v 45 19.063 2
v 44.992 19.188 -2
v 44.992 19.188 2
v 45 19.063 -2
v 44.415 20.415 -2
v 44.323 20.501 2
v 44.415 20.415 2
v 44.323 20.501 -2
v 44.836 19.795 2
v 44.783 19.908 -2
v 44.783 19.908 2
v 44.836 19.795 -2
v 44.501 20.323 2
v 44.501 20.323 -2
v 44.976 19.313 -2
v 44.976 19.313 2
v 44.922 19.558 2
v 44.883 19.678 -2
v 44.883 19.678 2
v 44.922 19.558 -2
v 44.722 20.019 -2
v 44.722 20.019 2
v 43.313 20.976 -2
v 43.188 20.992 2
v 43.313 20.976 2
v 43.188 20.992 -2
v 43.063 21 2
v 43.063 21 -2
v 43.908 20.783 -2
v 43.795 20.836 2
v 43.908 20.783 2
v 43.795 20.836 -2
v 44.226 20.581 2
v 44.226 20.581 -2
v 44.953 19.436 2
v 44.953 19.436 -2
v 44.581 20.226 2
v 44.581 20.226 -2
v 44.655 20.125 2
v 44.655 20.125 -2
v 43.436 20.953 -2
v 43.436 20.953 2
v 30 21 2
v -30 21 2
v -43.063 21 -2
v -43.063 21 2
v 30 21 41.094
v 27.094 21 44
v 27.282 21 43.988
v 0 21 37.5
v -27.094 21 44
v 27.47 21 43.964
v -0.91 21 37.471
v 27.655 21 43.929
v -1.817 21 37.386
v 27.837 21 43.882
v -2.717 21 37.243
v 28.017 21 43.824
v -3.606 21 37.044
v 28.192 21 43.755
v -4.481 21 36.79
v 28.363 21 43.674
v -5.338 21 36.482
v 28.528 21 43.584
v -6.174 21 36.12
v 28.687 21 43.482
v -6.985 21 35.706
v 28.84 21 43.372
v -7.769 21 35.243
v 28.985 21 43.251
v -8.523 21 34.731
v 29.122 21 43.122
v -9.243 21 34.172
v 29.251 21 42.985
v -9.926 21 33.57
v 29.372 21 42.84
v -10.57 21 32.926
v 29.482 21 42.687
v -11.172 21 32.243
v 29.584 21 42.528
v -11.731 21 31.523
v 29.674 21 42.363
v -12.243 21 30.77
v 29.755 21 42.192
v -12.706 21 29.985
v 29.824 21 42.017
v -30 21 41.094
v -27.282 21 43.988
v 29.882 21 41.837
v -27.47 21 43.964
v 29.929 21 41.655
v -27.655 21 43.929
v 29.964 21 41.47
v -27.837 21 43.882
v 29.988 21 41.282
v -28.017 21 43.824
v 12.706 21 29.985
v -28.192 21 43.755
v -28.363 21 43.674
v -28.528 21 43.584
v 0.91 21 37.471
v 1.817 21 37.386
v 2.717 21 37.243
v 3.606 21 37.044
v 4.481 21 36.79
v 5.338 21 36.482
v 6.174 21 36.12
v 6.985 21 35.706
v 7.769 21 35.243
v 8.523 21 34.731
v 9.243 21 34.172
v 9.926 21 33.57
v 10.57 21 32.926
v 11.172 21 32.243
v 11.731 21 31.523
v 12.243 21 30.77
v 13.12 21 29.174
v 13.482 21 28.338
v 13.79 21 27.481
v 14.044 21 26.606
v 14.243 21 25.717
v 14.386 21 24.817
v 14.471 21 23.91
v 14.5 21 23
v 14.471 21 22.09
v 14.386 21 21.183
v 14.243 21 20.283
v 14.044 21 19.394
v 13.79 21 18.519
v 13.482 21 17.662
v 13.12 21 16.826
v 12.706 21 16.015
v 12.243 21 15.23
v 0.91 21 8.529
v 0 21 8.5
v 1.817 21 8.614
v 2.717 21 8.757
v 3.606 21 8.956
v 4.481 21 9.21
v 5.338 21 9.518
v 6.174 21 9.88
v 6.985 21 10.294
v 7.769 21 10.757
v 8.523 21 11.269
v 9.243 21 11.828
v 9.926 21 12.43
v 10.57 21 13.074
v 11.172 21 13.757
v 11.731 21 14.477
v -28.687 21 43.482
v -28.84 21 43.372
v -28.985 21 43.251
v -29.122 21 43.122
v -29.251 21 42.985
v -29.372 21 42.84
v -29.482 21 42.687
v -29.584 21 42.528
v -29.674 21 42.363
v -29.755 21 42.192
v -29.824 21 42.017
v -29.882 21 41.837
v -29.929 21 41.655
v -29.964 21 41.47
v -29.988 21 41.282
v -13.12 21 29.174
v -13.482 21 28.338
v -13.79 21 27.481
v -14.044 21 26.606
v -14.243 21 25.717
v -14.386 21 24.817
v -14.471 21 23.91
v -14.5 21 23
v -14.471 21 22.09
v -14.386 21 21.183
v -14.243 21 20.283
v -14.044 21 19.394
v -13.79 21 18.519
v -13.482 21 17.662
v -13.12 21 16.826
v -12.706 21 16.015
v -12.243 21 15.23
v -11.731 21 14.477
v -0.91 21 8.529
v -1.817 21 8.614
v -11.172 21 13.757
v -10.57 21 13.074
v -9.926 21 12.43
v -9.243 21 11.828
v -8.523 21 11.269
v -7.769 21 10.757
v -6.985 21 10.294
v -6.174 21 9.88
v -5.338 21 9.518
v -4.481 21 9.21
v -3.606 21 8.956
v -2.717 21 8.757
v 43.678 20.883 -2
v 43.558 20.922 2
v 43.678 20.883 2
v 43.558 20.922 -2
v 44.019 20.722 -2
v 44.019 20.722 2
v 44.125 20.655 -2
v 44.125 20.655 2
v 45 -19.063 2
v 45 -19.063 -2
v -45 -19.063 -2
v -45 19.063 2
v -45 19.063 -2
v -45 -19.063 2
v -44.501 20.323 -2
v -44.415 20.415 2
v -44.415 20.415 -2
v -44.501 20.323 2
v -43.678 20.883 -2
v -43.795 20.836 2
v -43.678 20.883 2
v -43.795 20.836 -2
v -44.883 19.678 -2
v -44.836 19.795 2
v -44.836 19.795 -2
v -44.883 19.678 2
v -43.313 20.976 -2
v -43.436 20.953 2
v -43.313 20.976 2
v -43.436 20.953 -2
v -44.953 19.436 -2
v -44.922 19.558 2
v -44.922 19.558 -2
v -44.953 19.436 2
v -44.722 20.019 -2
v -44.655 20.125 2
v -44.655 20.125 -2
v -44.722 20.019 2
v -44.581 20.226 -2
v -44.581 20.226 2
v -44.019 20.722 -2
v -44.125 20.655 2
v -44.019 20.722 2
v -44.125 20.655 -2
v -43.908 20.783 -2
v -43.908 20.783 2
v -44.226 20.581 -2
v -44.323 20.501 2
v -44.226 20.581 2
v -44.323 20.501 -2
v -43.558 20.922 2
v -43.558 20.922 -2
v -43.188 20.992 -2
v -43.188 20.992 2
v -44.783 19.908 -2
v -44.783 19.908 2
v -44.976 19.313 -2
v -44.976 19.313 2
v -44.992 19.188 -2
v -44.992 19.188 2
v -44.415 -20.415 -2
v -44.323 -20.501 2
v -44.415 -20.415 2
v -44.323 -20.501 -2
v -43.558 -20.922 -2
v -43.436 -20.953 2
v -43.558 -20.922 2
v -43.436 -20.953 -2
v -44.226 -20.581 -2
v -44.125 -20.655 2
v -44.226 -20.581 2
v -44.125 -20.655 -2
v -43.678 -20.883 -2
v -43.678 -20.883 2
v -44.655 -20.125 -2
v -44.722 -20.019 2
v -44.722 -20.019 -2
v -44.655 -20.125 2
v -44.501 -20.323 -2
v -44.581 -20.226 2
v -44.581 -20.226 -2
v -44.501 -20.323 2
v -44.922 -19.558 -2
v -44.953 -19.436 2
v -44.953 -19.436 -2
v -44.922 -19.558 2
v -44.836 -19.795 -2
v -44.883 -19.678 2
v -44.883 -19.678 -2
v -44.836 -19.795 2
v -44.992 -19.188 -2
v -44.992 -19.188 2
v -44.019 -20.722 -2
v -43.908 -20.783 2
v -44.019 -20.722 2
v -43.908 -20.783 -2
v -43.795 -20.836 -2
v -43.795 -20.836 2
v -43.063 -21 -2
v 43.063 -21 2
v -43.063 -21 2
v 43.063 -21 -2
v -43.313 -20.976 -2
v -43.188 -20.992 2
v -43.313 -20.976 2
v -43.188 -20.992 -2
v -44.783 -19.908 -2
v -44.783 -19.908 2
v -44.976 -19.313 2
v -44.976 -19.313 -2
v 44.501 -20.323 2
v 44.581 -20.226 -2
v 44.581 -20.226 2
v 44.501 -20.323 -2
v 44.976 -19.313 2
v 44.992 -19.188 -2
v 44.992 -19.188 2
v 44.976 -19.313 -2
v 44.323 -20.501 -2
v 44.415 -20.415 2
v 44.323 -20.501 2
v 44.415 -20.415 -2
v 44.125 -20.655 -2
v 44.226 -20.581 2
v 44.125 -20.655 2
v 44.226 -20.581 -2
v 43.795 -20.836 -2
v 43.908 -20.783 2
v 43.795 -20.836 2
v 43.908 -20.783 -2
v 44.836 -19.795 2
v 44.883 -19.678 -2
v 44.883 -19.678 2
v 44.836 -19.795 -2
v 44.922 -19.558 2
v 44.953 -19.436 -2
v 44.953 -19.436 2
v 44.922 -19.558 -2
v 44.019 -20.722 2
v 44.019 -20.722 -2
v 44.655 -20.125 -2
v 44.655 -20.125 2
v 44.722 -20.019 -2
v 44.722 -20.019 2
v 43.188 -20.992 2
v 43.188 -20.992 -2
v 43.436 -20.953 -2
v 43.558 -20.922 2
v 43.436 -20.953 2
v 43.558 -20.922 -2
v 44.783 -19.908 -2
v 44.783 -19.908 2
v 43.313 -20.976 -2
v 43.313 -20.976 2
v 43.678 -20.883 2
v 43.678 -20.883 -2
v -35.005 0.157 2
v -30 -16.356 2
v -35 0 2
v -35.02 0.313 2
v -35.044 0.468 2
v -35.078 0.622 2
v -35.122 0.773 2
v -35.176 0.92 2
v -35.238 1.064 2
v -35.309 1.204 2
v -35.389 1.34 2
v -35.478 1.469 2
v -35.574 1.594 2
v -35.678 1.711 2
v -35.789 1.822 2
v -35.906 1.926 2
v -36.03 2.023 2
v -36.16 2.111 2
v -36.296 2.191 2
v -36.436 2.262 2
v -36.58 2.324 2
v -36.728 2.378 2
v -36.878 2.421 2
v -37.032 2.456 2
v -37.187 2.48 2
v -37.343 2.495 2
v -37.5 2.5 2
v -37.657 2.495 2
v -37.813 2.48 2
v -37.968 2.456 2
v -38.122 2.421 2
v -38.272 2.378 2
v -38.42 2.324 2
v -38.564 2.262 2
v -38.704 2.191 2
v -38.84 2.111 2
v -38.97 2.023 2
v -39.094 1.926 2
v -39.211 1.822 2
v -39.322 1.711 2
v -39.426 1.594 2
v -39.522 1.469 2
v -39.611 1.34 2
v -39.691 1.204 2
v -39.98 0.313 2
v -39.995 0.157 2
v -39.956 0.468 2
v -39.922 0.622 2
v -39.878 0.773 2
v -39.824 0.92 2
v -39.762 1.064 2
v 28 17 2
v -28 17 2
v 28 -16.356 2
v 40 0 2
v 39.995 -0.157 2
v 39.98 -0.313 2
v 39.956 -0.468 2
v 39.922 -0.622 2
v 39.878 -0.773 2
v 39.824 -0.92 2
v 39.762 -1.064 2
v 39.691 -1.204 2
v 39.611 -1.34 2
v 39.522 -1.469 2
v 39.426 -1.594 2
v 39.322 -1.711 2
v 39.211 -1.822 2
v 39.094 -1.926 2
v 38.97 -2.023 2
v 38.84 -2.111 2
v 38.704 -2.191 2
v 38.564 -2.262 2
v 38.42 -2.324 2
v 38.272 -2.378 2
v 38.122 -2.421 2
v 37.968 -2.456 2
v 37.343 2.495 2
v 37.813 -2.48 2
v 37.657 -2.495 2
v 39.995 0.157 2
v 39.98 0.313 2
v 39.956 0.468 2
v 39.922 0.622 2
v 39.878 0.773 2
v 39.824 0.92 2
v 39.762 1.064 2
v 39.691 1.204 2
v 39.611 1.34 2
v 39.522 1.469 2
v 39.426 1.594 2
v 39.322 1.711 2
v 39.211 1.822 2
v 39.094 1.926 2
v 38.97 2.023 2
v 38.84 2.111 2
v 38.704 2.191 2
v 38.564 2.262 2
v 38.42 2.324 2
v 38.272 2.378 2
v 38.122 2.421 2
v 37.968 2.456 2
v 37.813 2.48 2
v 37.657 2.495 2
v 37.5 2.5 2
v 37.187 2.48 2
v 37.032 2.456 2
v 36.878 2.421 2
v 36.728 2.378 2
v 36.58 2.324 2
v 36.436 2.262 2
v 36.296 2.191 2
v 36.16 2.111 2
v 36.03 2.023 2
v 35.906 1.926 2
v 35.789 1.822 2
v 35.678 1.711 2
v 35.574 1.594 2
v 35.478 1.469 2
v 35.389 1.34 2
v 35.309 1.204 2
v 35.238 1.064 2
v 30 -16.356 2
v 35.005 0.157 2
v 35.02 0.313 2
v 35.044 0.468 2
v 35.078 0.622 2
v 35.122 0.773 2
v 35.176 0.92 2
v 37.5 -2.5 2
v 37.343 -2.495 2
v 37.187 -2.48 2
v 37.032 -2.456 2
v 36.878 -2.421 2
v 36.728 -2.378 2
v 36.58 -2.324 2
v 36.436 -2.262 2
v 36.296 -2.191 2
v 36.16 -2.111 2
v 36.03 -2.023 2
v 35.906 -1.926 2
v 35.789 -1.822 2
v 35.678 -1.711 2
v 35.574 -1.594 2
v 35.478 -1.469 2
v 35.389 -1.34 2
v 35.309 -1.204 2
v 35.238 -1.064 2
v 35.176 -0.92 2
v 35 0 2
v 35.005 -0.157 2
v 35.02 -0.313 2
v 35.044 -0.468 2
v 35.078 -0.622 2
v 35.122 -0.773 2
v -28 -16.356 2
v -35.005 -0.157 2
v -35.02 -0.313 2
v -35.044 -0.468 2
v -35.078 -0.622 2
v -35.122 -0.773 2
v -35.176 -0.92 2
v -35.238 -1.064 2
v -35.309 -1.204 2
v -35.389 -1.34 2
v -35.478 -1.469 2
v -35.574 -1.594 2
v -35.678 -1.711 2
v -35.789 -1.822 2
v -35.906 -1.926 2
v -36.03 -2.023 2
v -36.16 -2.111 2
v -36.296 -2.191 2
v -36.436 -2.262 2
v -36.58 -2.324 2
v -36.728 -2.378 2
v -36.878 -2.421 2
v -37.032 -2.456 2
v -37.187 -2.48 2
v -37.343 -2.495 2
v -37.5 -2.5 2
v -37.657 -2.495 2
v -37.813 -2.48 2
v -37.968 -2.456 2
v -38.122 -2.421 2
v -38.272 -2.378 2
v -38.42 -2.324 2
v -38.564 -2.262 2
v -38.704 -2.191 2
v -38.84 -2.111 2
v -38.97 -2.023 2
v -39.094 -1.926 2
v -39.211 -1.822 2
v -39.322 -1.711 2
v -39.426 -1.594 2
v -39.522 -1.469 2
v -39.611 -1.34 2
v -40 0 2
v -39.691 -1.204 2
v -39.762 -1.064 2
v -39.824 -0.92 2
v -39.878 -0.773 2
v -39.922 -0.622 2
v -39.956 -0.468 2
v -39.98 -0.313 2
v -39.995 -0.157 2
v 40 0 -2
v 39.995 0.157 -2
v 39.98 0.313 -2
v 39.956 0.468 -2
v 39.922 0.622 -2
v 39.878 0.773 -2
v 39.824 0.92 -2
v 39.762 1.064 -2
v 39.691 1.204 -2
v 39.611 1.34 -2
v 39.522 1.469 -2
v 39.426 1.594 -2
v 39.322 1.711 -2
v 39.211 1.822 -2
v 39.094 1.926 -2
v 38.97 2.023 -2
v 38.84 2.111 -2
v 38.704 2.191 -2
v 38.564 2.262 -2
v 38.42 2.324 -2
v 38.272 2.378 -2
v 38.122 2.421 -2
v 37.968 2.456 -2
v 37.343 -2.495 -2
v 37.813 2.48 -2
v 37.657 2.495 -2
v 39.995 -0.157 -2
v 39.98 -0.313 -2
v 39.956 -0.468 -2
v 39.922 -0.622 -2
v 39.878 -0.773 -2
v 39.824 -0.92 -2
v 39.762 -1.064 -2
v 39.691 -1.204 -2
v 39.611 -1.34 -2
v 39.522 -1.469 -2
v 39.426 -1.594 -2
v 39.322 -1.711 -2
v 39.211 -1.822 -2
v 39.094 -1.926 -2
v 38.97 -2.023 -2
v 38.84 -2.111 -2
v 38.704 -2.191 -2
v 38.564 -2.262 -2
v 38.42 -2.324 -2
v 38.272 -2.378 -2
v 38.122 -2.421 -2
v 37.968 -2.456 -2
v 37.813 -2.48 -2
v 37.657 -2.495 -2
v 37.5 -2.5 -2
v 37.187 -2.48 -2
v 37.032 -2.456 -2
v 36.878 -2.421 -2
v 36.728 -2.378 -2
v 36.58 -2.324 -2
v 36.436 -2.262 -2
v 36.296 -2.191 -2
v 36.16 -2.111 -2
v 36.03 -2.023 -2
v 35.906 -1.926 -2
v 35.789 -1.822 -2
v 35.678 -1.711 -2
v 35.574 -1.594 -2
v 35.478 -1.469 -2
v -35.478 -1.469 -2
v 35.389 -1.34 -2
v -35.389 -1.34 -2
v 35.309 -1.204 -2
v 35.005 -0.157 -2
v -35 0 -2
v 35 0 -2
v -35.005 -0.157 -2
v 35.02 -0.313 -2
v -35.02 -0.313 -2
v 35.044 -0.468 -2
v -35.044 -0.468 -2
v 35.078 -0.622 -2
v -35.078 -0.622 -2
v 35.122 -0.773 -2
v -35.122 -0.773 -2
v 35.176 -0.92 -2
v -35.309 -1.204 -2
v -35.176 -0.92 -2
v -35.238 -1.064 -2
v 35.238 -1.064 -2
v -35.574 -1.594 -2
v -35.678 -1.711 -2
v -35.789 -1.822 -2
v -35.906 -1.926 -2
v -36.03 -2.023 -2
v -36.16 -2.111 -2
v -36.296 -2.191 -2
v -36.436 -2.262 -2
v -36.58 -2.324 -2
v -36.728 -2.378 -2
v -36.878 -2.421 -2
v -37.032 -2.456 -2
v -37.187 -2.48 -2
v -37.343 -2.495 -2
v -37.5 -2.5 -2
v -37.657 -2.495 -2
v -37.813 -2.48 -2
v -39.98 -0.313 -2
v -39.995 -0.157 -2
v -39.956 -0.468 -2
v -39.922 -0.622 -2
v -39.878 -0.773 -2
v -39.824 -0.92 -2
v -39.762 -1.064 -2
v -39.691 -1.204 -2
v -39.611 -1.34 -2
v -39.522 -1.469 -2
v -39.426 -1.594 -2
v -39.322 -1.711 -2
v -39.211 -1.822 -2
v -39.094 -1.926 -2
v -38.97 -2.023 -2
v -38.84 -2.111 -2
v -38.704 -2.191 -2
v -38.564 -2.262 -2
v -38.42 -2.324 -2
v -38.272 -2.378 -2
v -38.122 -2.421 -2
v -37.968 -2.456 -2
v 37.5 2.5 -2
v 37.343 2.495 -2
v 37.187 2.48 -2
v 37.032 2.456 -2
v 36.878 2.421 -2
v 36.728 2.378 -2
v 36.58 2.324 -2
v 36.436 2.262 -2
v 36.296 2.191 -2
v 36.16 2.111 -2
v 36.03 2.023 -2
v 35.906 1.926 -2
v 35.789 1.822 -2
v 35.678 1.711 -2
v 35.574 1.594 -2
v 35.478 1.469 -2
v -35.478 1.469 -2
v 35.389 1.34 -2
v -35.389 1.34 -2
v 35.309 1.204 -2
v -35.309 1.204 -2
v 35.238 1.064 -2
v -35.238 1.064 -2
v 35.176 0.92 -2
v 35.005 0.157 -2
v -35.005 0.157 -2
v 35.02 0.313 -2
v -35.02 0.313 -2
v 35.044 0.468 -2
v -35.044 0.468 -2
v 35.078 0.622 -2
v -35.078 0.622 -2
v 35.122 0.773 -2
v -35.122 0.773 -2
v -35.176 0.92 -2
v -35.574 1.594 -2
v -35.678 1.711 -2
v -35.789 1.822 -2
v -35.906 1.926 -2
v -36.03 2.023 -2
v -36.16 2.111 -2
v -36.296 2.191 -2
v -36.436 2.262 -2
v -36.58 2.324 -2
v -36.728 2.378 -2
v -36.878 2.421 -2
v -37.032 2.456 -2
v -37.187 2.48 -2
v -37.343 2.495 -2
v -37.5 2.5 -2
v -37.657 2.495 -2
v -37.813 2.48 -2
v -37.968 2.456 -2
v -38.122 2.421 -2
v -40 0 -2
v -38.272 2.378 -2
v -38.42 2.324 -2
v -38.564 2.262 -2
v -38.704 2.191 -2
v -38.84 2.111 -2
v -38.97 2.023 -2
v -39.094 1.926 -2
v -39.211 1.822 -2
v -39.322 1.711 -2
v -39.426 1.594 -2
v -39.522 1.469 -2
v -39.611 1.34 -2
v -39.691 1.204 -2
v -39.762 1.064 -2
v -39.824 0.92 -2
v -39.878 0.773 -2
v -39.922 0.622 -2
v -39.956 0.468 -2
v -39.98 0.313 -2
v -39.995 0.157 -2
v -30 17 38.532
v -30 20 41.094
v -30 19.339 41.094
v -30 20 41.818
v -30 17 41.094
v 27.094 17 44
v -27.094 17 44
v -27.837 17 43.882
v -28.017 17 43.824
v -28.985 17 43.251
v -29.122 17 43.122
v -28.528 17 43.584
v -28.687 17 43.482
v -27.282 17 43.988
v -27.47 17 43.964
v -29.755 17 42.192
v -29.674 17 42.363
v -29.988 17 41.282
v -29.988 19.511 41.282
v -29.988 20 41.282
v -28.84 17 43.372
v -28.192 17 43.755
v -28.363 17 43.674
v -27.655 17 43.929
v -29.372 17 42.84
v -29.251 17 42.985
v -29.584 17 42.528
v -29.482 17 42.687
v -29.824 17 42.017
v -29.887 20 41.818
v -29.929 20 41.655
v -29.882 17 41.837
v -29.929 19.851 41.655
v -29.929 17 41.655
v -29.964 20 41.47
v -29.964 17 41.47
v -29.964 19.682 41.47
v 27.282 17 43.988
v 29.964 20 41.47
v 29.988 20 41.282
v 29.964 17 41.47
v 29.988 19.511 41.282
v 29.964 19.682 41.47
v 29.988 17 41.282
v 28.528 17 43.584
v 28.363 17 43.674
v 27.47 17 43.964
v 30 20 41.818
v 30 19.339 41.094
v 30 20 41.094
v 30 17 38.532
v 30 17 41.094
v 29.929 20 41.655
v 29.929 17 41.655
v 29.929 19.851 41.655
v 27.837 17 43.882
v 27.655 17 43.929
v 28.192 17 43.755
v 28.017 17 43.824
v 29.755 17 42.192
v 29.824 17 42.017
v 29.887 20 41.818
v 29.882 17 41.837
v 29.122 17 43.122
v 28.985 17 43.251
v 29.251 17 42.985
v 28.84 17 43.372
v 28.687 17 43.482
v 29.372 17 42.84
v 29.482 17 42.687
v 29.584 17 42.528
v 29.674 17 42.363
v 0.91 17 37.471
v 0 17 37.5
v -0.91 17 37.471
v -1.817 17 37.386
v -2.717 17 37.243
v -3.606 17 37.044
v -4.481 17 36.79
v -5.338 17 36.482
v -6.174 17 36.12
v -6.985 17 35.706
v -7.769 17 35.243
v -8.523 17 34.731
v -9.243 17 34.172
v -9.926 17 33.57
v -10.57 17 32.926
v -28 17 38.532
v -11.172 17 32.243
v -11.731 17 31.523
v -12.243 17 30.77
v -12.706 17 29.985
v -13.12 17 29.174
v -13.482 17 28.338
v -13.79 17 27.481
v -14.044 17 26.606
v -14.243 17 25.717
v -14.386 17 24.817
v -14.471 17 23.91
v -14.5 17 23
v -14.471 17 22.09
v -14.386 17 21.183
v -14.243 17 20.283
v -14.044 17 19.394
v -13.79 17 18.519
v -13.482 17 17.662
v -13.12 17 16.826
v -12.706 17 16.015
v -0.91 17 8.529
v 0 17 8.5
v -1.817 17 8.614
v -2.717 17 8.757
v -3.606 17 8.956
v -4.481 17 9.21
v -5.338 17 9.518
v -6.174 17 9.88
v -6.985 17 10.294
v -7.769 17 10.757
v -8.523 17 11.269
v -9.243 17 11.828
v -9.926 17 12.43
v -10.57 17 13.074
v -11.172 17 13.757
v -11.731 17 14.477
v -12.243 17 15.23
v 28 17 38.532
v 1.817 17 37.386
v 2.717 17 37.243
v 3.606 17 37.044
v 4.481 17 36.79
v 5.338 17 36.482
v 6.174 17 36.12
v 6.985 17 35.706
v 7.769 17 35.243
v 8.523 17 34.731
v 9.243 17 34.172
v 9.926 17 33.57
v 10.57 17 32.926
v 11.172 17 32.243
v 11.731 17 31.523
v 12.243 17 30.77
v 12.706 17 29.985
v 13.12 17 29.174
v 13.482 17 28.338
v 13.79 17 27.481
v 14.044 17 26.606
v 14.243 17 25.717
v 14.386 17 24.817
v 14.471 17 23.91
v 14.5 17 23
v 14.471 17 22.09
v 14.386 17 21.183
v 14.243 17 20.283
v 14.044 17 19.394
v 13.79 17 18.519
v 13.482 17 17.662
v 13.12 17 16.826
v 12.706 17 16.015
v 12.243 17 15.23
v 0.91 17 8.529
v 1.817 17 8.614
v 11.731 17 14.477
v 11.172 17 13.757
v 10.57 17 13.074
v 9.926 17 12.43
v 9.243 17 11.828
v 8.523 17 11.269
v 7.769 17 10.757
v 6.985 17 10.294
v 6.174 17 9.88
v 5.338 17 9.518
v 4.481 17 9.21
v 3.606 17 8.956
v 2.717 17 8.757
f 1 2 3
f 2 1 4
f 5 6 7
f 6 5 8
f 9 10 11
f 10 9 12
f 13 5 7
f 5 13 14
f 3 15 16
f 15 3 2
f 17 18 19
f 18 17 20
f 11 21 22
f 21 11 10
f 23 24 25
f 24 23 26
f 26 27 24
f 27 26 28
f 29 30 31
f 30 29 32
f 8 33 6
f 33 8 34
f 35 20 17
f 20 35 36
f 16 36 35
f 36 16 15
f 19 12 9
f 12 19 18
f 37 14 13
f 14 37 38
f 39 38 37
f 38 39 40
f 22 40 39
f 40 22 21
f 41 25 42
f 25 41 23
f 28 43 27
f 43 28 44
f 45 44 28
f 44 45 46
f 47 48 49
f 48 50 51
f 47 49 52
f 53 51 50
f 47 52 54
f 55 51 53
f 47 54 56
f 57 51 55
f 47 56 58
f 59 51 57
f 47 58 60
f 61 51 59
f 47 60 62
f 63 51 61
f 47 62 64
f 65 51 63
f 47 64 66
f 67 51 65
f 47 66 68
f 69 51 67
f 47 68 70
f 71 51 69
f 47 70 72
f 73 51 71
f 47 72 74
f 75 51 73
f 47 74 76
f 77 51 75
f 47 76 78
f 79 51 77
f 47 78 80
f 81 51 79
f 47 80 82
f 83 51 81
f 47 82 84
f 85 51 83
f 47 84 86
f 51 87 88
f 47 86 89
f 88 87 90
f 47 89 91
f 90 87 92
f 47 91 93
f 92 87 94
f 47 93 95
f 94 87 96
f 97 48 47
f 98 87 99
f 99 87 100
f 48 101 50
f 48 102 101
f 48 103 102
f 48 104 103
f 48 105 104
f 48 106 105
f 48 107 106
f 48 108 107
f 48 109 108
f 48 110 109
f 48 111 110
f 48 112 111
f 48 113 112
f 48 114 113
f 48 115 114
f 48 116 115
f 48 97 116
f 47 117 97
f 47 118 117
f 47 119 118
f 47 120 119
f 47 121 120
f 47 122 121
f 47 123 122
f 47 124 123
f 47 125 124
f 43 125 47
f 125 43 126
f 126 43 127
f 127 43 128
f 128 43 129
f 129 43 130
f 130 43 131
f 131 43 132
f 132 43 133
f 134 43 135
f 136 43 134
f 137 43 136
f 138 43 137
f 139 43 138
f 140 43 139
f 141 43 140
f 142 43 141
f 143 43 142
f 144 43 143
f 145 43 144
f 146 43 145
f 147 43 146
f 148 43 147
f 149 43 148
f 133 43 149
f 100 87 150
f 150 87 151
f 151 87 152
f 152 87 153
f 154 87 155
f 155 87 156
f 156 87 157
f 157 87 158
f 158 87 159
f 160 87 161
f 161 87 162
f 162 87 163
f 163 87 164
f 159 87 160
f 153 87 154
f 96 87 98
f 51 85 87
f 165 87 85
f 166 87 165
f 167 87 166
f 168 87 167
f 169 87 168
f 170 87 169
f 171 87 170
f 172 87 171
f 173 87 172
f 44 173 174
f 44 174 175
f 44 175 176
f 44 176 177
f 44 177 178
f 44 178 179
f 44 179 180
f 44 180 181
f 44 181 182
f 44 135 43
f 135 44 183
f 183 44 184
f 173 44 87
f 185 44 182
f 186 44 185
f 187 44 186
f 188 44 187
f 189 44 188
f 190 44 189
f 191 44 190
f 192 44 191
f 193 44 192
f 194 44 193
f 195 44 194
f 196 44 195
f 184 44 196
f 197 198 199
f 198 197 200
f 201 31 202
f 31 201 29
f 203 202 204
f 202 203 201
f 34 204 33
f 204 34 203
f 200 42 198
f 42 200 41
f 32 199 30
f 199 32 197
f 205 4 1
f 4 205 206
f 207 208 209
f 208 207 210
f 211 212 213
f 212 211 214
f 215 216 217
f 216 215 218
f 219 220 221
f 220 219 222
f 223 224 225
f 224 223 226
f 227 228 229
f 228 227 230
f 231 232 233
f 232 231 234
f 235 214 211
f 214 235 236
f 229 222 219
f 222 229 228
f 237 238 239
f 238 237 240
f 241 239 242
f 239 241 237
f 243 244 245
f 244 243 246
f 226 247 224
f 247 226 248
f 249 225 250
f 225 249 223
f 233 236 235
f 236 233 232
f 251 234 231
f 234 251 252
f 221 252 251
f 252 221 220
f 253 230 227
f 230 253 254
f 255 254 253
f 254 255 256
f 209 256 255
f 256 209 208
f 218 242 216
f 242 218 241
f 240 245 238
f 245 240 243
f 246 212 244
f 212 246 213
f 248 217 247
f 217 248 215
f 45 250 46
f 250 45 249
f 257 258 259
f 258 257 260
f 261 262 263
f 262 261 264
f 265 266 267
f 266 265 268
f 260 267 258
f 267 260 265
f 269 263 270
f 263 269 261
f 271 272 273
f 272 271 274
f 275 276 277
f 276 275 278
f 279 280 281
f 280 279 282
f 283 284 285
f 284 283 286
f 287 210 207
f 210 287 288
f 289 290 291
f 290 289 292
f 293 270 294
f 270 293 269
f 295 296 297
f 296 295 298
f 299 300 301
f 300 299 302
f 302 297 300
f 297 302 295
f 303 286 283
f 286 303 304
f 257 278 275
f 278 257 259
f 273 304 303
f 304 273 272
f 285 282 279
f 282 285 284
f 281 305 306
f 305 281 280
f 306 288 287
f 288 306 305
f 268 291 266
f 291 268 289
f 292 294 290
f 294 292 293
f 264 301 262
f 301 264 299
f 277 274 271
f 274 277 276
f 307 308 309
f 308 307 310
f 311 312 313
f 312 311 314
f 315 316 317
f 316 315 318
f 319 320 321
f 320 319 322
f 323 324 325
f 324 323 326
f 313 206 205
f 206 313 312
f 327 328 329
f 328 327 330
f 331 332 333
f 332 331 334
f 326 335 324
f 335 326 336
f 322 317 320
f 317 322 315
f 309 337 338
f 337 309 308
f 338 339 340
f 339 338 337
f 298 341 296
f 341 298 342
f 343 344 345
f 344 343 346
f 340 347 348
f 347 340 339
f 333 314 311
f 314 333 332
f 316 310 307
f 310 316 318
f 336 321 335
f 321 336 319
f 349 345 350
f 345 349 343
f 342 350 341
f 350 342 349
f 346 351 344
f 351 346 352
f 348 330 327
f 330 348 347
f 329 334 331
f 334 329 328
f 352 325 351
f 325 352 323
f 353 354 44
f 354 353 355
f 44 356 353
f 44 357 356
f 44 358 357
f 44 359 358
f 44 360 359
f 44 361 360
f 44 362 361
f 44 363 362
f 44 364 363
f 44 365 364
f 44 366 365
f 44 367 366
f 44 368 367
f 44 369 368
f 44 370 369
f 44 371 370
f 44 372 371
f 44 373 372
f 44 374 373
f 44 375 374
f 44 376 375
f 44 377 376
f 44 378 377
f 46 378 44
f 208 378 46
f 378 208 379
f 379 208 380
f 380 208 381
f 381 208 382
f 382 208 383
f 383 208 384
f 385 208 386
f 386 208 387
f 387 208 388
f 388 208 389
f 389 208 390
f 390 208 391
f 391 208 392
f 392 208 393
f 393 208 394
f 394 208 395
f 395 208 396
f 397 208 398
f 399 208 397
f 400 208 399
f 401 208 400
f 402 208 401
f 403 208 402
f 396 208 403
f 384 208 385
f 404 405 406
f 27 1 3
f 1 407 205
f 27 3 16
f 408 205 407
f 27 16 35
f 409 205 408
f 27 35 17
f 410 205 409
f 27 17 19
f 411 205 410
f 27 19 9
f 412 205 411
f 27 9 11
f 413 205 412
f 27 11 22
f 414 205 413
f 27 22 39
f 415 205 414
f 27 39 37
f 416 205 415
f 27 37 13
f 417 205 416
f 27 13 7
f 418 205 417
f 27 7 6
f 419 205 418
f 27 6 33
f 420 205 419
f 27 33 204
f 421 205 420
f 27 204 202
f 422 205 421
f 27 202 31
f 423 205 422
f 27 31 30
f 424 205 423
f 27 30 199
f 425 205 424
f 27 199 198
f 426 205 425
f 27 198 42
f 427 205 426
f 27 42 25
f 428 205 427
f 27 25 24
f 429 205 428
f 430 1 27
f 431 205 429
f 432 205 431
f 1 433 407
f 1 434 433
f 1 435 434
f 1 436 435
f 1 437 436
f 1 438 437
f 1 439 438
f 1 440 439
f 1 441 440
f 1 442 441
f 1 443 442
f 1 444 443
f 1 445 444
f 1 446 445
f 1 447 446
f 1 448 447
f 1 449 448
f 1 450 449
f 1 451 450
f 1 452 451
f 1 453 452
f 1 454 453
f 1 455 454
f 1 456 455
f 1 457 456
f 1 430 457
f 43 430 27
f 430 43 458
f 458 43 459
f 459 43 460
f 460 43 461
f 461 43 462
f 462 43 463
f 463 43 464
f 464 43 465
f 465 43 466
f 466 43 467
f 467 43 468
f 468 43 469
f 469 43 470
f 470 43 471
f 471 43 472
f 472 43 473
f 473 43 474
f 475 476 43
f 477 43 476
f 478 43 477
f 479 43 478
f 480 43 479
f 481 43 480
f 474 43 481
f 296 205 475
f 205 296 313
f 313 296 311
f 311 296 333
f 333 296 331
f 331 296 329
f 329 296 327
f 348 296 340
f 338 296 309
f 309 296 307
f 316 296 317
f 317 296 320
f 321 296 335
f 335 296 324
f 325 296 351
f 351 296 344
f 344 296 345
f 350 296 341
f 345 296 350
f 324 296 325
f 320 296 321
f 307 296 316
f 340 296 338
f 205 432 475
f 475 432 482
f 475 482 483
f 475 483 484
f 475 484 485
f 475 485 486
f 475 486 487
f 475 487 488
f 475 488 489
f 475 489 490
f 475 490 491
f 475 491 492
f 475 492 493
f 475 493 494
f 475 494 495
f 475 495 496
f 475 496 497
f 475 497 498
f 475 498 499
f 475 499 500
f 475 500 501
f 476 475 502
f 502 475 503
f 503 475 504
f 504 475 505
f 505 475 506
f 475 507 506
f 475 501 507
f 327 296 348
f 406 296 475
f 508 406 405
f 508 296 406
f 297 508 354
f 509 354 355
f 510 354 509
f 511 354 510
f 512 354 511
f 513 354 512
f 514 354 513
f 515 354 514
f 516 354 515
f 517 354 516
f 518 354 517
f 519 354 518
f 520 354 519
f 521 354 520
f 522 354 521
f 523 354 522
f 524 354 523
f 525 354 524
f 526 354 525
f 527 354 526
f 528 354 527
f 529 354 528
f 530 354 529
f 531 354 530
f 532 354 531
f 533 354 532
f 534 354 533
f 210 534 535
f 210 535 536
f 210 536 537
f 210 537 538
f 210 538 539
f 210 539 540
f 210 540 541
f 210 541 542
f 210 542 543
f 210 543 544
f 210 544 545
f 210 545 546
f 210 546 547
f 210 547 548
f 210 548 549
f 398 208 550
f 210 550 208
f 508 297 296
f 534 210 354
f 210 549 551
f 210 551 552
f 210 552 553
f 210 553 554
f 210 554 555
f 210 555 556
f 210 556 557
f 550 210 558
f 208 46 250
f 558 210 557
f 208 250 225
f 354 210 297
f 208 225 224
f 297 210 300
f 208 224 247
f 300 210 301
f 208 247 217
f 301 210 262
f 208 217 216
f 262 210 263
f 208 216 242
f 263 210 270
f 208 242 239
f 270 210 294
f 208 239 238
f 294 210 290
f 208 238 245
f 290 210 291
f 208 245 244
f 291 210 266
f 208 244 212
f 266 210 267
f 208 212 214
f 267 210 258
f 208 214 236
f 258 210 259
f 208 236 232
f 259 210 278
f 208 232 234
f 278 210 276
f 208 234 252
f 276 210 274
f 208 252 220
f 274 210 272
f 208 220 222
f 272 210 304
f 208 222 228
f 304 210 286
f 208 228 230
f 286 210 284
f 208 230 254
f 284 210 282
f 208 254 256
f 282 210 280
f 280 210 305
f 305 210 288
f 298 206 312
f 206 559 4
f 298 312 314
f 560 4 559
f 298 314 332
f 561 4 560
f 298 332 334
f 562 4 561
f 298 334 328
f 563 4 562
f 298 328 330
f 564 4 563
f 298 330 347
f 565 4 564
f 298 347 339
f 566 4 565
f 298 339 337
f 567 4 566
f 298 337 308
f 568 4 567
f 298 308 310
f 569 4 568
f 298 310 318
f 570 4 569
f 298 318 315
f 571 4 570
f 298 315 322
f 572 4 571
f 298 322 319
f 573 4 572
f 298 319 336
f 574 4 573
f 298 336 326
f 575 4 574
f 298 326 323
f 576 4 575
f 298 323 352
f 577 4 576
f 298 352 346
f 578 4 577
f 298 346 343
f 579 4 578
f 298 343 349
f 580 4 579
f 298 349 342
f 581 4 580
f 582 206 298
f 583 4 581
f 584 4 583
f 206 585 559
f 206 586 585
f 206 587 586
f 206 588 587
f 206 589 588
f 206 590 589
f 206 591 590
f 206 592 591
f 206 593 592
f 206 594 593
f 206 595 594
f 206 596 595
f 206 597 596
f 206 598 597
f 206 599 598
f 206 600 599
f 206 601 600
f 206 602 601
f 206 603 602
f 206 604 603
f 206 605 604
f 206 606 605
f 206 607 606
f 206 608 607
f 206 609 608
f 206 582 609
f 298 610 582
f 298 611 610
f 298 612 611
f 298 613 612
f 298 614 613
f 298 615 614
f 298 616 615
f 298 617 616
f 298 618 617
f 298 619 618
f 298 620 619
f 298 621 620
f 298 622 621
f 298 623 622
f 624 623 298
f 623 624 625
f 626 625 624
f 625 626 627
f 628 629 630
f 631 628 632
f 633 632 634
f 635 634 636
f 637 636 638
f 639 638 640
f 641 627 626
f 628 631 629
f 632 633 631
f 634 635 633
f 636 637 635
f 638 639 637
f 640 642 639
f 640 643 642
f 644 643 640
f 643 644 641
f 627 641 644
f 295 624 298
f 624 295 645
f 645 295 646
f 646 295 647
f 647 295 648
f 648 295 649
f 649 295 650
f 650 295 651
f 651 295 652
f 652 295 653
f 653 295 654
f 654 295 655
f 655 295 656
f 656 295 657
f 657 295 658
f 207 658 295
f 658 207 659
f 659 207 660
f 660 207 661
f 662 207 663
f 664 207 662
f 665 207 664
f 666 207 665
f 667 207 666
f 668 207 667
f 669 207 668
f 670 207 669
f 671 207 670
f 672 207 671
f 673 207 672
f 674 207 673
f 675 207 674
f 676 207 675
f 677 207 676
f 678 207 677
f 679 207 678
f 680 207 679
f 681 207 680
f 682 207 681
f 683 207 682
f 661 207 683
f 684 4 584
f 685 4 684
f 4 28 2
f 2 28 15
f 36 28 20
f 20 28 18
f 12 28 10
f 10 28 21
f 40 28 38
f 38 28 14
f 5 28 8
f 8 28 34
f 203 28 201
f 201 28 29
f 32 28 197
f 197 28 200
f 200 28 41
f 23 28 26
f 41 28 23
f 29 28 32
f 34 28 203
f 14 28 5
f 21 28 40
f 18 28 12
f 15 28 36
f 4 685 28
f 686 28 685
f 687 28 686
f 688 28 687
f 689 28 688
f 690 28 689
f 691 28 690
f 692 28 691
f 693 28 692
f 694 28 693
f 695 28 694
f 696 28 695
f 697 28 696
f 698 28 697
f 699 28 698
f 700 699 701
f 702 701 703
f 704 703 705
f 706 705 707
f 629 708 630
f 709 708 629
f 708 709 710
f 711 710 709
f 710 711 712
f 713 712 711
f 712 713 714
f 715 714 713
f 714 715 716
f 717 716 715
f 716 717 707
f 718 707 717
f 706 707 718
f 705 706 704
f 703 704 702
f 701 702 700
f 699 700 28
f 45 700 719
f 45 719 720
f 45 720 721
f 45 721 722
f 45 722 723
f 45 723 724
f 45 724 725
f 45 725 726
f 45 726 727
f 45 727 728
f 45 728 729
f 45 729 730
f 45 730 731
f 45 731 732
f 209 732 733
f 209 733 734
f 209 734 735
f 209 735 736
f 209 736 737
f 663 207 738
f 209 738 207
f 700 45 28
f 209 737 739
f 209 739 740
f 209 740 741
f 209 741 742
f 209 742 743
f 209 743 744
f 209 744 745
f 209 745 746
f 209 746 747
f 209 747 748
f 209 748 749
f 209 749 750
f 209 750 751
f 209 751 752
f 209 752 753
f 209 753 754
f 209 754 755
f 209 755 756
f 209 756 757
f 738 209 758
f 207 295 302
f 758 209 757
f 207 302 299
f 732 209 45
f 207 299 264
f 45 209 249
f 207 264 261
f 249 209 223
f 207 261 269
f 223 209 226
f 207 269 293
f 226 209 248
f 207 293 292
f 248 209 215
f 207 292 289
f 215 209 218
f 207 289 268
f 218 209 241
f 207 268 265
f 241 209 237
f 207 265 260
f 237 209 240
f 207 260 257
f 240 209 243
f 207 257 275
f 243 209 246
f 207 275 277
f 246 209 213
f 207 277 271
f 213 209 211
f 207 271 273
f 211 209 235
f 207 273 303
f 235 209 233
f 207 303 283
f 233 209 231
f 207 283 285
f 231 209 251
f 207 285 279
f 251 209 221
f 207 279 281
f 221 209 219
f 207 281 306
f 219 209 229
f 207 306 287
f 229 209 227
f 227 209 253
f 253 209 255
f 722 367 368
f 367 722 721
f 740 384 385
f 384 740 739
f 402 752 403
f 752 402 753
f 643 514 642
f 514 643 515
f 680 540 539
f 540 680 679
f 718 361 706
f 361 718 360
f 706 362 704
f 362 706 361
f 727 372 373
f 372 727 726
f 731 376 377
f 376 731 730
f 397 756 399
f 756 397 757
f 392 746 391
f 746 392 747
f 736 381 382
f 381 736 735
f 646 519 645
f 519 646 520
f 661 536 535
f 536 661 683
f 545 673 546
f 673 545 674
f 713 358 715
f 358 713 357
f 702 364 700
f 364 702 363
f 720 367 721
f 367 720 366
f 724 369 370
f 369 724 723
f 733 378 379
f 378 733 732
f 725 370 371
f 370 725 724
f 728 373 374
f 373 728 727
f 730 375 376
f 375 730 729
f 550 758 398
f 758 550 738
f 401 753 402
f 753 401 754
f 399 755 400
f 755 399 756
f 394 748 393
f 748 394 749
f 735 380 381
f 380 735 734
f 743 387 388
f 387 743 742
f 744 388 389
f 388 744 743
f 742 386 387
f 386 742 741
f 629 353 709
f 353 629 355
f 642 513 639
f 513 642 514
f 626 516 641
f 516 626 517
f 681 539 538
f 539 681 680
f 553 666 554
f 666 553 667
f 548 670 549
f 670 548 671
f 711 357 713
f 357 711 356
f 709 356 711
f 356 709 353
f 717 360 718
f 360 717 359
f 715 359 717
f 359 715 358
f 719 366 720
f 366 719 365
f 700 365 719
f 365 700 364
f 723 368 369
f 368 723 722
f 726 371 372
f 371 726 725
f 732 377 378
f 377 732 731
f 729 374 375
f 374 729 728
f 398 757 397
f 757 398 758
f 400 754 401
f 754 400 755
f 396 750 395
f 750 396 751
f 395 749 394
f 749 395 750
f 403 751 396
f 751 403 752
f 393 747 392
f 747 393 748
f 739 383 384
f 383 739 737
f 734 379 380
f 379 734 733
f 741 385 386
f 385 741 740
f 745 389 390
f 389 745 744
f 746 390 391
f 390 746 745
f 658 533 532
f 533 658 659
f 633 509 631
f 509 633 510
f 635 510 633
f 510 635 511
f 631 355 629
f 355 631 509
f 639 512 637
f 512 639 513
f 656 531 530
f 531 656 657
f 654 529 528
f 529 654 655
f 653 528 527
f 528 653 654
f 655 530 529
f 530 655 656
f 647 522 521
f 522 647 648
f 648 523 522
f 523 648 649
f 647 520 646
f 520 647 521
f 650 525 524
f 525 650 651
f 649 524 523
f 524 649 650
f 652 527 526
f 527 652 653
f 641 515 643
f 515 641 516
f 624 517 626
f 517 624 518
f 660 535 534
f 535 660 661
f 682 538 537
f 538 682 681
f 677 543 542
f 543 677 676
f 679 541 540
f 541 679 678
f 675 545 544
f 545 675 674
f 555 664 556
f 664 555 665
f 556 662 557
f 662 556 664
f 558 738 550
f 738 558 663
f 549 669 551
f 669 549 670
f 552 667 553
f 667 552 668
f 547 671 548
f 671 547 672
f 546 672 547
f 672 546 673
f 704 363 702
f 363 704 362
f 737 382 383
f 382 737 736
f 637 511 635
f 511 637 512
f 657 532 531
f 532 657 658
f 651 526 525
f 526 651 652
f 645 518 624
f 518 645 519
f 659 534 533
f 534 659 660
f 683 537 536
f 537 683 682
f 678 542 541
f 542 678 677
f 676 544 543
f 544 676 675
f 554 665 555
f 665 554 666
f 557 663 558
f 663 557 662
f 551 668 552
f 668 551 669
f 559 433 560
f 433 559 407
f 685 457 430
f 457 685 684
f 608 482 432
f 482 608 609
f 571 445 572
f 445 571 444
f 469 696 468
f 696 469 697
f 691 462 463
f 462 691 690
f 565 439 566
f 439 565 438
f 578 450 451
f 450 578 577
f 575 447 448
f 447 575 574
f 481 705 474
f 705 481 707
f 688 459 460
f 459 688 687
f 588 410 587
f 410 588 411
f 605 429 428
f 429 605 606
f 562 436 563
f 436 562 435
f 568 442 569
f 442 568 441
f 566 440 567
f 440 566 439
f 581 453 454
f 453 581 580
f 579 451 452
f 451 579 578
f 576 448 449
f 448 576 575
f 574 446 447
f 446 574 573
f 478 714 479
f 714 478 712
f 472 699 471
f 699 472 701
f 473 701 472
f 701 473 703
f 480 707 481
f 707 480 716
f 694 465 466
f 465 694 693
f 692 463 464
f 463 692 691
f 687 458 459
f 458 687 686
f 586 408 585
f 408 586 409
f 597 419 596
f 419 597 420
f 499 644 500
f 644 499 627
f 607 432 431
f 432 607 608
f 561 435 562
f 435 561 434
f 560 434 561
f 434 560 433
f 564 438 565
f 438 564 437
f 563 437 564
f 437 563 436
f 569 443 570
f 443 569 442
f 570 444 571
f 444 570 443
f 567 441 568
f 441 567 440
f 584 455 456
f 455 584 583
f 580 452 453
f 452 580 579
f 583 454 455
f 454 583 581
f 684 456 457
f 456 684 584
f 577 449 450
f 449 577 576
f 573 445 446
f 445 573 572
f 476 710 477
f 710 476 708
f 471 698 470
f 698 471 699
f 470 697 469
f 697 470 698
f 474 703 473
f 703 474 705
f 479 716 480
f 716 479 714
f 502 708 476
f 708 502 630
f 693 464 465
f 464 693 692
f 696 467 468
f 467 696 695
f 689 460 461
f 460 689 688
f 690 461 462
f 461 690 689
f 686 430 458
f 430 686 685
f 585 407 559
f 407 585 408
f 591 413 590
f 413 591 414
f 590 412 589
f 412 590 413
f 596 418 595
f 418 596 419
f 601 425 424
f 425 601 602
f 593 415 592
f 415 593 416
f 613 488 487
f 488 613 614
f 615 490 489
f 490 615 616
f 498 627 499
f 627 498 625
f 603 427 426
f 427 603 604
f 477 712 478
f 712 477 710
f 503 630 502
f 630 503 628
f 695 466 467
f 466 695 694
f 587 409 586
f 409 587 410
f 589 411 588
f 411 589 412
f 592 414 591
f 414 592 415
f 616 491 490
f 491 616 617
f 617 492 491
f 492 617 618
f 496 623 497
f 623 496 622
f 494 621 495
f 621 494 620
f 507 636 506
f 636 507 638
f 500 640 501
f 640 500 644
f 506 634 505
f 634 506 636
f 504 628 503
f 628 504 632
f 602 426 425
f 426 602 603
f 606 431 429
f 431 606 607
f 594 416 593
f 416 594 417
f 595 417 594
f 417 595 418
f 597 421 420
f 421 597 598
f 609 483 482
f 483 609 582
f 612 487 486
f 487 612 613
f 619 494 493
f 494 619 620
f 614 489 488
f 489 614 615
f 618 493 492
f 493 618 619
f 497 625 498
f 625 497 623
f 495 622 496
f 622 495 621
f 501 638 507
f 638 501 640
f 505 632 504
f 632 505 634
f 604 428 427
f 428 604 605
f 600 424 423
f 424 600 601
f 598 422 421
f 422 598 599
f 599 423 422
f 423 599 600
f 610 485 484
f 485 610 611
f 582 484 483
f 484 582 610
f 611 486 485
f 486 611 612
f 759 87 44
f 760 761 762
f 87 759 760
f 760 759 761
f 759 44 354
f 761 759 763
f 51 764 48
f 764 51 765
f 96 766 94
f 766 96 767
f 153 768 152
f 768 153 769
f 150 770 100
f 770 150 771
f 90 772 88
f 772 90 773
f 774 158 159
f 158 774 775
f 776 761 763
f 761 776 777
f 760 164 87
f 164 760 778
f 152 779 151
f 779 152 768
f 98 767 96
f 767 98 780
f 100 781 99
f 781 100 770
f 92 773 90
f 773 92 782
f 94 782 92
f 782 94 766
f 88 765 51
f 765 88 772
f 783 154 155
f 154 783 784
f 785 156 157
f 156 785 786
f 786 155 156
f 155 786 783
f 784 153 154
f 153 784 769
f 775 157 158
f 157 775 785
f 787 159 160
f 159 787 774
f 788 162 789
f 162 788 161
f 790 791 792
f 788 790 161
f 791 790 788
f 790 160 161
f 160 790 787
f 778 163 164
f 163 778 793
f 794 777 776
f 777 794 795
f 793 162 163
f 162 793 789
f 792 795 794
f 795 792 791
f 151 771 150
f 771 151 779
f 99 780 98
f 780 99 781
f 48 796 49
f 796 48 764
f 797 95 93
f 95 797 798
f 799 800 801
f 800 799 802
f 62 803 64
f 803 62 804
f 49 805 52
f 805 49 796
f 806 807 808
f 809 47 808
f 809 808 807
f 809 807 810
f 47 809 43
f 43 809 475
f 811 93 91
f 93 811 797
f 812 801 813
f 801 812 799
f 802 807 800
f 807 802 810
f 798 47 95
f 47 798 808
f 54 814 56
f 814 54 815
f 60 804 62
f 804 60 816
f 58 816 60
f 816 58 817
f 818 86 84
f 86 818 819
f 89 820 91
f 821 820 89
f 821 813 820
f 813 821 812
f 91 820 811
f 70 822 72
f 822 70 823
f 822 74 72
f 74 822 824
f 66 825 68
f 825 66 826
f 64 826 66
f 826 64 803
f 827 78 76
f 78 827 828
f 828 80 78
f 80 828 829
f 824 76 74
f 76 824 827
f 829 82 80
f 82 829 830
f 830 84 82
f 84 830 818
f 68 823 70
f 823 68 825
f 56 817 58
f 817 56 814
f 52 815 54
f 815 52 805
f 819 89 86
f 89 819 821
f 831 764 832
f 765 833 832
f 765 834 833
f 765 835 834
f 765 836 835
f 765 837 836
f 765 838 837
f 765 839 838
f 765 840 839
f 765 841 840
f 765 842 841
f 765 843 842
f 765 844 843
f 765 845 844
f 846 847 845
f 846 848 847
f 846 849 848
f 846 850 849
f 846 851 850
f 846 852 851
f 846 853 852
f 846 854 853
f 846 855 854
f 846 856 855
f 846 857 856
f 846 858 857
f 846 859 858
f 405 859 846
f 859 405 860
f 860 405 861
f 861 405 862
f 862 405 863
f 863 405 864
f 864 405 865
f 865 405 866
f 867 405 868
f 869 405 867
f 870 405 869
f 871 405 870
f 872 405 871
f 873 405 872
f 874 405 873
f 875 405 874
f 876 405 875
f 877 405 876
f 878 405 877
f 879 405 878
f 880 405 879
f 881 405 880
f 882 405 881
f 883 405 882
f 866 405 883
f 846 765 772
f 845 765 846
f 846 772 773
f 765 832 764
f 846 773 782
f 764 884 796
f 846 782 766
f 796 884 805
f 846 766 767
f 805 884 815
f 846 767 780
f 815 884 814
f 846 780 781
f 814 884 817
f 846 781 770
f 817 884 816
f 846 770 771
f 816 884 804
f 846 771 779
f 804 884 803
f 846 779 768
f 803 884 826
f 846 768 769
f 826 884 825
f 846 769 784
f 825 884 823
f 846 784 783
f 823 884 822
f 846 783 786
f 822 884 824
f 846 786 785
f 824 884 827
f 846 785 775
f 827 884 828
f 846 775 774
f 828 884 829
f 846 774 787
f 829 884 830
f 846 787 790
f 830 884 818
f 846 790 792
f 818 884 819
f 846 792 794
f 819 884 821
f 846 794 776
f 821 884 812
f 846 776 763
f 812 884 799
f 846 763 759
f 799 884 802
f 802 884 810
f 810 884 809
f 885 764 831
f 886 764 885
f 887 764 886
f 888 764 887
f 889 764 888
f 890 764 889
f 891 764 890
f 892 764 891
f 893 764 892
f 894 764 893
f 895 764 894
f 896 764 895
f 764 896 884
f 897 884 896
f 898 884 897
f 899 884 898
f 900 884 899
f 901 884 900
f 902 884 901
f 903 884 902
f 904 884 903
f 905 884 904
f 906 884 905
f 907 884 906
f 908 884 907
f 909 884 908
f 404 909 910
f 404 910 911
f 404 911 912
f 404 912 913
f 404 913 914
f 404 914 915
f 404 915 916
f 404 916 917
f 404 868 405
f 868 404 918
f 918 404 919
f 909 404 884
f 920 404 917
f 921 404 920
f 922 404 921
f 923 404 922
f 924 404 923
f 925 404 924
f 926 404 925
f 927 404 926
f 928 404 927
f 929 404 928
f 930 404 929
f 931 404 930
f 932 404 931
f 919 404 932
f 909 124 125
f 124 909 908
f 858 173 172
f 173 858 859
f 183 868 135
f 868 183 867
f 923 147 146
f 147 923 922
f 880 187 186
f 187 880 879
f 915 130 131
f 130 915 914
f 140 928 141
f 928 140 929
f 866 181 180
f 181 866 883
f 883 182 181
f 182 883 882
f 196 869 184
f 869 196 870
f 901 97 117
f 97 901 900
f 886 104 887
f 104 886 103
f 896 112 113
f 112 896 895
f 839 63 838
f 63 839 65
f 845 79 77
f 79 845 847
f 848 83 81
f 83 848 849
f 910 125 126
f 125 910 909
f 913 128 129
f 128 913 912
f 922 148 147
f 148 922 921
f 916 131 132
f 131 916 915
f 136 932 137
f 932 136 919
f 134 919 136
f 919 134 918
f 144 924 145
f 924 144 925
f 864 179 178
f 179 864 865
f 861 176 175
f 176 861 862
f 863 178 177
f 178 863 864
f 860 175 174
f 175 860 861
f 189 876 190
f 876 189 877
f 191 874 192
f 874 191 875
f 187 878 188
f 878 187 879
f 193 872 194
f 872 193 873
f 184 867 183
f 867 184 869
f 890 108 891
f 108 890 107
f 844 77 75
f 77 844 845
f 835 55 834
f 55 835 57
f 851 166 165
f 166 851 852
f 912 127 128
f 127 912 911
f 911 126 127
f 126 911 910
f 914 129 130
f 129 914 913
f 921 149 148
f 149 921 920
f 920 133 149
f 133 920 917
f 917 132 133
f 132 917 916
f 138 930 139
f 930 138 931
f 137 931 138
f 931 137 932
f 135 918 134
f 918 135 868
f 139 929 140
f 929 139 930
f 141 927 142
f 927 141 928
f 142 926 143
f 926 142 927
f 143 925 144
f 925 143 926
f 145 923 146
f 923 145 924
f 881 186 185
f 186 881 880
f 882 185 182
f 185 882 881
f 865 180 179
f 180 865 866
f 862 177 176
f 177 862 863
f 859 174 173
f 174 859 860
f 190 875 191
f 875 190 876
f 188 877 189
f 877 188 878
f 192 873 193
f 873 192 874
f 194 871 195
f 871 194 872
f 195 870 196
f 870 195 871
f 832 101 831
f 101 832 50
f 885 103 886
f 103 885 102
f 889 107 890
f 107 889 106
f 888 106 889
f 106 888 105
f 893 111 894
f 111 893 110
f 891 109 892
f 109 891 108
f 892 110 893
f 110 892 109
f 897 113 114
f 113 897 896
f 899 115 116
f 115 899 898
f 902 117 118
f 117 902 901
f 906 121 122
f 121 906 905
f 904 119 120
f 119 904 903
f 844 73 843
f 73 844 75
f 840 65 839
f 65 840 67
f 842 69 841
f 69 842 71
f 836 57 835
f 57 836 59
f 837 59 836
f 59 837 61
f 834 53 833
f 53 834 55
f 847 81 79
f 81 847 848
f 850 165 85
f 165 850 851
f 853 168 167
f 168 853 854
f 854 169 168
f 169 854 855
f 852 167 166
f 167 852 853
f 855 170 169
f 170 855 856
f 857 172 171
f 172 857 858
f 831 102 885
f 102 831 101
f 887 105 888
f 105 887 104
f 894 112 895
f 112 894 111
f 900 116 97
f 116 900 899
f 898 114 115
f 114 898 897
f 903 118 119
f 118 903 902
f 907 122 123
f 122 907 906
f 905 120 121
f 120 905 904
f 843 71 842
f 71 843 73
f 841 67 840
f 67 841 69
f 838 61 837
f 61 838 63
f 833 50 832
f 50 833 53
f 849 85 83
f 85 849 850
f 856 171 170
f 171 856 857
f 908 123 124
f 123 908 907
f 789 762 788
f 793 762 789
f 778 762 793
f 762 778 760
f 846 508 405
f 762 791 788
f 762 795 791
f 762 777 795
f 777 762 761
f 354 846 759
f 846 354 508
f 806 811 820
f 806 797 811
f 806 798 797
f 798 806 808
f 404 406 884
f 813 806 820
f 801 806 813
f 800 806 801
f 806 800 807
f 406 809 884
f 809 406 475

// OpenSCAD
$fn=100;

include <BOSL/constants.scad>
use <BOSL/shapes.scad>

base_w=90;
base_d=42;
base_t=4;

face_w=60;
face_h=46;
face_t=4;

hole=29;
screw=5;

difference(){
  // Base
  translate([0,0,0])
    cuboid([base_w,base_d,base_t], fillet=base_t-2, edges=EDGES_Z_ALL, $fn=100);

  // Screw holes
  translate([-base_w/2+screw*1.5,0,0])
    cylinder(d=screw, h=base_t*2, center=true);
    
  translate([base_w/2-screw*1.5,0,0])
    cylinder(d=screw, h=base_t*2, center=true);
}

difference(){
  // Face
  translate([0,base_d/2-face_t/2,face_h/2-base_t/2])
    rotate(a=[270,0,0])
      cuboid([face_w,face_h,face_t], fillet=face_t-1, edges=EDGE_FR_RT+EDGE_FR_LF, $fn=100);
    
  // Hole
  translate([0,base_d/2-face_t/2,face_h/2])
    rotate(a=[270,0,0])
      cylinder(d=hole, h=face_t*2, center=true);
}
// Reinforcement
 translate([-face_w/2,20,0])
  rotate(a=[0,0,270])
    right_triangle([base_d/1.1,face_t/2,face_h/1.1]);

 translate([face_w/2-face_t/2,20,0])
  rotate(a=[0,0,270])
    right_triangle([base_d/1.1,face_t/2,face_h/1.1]);
